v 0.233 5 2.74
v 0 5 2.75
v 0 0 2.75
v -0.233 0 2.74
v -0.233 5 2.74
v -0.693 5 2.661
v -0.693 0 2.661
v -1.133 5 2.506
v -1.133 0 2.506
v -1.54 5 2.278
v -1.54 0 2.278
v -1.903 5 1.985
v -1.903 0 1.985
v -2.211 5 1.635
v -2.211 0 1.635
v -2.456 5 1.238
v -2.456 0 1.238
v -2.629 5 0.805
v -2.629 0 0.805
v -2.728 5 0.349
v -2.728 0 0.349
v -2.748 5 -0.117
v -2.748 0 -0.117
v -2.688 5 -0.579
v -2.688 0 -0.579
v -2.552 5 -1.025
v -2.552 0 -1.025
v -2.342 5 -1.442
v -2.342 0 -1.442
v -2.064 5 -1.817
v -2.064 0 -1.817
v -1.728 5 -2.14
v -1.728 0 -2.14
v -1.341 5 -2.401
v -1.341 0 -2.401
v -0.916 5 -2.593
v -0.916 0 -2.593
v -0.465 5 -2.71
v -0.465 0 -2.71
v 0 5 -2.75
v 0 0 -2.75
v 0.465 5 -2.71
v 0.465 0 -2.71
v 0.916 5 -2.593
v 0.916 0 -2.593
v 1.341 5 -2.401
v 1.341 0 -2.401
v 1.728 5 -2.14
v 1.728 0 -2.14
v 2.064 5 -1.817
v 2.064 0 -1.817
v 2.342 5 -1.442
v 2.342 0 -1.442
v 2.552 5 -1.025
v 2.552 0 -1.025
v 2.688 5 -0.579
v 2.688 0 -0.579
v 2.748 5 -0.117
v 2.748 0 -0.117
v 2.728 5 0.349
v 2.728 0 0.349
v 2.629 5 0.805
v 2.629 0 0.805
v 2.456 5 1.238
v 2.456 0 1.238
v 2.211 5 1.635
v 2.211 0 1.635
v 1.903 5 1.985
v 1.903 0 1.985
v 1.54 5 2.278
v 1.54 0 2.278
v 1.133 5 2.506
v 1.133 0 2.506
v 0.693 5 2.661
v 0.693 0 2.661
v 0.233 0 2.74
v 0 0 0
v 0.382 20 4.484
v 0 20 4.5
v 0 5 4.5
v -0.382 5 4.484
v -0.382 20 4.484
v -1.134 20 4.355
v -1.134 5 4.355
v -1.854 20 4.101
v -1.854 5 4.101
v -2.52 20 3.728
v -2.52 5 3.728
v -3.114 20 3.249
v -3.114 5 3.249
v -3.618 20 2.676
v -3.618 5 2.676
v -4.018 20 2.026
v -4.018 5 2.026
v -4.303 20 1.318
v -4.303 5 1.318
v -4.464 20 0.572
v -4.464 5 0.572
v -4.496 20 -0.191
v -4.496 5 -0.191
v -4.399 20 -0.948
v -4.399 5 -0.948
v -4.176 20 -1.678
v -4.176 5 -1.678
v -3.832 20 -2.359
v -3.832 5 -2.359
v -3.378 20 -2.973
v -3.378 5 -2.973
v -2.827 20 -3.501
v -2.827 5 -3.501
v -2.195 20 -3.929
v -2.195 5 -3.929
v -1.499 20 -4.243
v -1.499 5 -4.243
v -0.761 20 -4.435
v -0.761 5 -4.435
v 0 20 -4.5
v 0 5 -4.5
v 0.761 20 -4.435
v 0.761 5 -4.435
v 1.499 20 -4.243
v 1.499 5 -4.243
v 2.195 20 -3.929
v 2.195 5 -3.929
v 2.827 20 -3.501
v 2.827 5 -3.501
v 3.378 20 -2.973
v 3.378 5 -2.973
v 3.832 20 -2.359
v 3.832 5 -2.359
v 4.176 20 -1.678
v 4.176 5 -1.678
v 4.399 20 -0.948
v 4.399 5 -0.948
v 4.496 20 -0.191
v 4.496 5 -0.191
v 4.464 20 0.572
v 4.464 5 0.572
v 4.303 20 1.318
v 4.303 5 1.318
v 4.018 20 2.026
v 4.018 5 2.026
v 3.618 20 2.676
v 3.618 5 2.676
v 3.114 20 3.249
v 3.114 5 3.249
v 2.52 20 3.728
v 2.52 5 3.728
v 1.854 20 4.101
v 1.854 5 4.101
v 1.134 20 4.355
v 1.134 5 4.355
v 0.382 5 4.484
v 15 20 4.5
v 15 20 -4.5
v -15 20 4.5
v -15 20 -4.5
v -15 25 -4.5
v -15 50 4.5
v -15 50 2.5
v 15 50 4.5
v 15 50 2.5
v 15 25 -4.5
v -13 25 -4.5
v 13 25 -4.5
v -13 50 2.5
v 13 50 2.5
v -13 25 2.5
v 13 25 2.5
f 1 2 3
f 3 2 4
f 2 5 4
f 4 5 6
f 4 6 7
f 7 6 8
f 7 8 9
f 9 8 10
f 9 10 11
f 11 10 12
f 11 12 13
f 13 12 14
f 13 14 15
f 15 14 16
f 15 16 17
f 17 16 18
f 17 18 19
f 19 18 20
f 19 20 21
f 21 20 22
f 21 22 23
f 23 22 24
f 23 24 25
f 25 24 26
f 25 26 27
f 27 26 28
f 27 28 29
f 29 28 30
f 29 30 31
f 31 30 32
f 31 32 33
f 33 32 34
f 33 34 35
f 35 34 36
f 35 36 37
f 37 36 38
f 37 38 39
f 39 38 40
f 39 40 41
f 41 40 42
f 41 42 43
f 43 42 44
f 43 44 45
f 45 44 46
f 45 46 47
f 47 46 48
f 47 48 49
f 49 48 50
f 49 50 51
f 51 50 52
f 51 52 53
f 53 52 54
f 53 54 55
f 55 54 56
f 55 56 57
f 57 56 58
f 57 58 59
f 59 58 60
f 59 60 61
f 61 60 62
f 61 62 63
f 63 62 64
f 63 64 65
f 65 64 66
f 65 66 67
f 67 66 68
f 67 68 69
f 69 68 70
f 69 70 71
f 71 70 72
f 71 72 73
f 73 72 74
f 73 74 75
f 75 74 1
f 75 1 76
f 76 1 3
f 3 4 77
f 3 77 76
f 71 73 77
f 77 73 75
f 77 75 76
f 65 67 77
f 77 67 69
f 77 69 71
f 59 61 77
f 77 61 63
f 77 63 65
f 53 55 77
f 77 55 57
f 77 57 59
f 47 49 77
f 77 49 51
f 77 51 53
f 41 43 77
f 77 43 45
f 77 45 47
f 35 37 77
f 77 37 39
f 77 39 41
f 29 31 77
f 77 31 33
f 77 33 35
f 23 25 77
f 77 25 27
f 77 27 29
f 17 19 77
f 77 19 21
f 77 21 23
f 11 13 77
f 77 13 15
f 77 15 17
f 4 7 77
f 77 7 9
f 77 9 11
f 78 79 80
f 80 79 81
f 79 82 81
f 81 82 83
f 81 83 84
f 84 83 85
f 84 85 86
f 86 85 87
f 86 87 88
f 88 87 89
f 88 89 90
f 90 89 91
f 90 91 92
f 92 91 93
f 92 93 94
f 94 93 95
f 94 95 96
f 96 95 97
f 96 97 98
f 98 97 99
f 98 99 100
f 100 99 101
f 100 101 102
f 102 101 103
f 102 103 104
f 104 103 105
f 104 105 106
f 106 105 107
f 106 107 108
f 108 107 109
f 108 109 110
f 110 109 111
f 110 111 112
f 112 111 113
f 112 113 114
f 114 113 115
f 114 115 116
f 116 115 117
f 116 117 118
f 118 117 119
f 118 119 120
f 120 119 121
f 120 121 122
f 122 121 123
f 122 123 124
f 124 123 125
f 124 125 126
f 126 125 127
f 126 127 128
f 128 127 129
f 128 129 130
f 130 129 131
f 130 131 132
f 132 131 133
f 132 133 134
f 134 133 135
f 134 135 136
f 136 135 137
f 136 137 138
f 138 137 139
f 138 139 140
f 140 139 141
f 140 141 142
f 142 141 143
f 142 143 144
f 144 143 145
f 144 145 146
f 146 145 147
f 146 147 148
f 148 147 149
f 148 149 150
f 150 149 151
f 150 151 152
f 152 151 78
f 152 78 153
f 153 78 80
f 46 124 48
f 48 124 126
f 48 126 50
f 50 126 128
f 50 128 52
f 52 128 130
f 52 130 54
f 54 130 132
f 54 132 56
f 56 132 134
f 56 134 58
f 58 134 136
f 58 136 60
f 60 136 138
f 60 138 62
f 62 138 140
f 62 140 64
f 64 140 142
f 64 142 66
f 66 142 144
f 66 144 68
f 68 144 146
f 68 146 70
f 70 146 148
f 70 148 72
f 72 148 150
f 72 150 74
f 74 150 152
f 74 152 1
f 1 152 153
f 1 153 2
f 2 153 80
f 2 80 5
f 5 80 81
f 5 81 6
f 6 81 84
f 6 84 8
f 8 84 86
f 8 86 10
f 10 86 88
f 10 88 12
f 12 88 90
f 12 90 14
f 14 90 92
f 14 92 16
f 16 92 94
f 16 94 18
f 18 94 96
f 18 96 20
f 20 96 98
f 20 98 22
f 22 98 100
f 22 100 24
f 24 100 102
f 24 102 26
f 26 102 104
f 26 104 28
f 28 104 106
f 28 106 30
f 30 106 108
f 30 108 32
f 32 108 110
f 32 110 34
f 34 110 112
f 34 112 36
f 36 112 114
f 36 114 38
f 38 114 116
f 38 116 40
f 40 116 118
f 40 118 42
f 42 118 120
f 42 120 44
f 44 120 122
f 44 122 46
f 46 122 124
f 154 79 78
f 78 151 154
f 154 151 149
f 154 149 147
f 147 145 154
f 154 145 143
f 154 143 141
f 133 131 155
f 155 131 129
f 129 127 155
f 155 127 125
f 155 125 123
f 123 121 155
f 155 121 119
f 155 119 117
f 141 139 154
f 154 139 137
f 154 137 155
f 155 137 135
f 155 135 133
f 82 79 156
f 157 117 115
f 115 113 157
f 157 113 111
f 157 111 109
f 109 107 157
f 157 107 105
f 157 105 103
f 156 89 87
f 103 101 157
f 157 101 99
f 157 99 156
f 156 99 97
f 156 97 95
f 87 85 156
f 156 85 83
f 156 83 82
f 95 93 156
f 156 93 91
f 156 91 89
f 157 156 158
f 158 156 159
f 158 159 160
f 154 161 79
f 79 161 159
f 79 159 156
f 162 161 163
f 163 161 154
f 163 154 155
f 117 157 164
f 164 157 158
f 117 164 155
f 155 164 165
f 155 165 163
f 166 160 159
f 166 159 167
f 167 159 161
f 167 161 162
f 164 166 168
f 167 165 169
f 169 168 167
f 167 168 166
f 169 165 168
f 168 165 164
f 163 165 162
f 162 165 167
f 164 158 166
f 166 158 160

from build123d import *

# Parameters (mm, degrees)
SKETCH1_R           = 2.75
BOSS_EXTRUDE1_DEPTH = 5
SKETCH2_R           = 4.5
BOSS_EXTRUDE2_DEPTH = 15
SKETCH3_W           = 30
SKETCH3_H           = 9
BOSS_EXTRUDE3_DEPTH = 30
SKETCH4_W           = 26
SKETCH4_H           = 7
CUT_EXTRUDE1_DEPTH  = 25
CUT_EXTRUDE2_DEPTH  = 39


with BuildPart() as part:
    # Sketch1 → Boss-Extrude1 (new body)
    with BuildSketch(Plane(origin=(0, 0, 0), x_dir=(1, 0, 0), z_dir=(0, 1, 0))):
        Circle(SKETCH1_R)
    extrude(amount=BOSS_EXTRUDE1_DEPTH)

    # Sketch2 → Boss-Extrude2 (add)
    with BuildSketch(Plane(origin=(0, 5, 0), x_dir=(1, 0, 0), z_dir=(0, 1, 0))):
        Circle(SKETCH2_R)
    extrude(amount=BOSS_EXTRUDE2_DEPTH)

    # Sketch3 → Boss-Extrude3 (add)
    with BuildSketch(Plane(origin=(0, 20, 0), x_dir=(1, 0, 0), z_dir=(0, 1, 0))):
        Rectangle(SKETCH3_W, SKETCH3_H)
    extrude(amount=BOSS_EXTRUDE3_DEPTH)

    # Sketch4 → Cut-Extrude1 (cut)
    with BuildSketch(Plane(origin=(0, 50, 0), x_dir=(1, 0, 0), z_dir=(0, 1, 0))):
        with Locations((0, 1)):
            Rectangle(SKETCH4_W, SKETCH4_H)
    extrude(amount=-CUT_EXTRUDE1_DEPTH, mode=Mode.SUBTRACT)

    # Sketch5 → Cut-Extrude2 (cut)
    with BuildSketch(Plane(origin=(15, 0, 0), x_dir=(0, 0, -1), z_dir=(1, 0, 0))):
        Polygon((-2.5, 50), (4.5, 25), (4.5, 50), align=None)
    extrude(amount=-CUT_EXTRUDE2_DEPTH, mode=Mode.SUBTRACT)


solid = part.part
